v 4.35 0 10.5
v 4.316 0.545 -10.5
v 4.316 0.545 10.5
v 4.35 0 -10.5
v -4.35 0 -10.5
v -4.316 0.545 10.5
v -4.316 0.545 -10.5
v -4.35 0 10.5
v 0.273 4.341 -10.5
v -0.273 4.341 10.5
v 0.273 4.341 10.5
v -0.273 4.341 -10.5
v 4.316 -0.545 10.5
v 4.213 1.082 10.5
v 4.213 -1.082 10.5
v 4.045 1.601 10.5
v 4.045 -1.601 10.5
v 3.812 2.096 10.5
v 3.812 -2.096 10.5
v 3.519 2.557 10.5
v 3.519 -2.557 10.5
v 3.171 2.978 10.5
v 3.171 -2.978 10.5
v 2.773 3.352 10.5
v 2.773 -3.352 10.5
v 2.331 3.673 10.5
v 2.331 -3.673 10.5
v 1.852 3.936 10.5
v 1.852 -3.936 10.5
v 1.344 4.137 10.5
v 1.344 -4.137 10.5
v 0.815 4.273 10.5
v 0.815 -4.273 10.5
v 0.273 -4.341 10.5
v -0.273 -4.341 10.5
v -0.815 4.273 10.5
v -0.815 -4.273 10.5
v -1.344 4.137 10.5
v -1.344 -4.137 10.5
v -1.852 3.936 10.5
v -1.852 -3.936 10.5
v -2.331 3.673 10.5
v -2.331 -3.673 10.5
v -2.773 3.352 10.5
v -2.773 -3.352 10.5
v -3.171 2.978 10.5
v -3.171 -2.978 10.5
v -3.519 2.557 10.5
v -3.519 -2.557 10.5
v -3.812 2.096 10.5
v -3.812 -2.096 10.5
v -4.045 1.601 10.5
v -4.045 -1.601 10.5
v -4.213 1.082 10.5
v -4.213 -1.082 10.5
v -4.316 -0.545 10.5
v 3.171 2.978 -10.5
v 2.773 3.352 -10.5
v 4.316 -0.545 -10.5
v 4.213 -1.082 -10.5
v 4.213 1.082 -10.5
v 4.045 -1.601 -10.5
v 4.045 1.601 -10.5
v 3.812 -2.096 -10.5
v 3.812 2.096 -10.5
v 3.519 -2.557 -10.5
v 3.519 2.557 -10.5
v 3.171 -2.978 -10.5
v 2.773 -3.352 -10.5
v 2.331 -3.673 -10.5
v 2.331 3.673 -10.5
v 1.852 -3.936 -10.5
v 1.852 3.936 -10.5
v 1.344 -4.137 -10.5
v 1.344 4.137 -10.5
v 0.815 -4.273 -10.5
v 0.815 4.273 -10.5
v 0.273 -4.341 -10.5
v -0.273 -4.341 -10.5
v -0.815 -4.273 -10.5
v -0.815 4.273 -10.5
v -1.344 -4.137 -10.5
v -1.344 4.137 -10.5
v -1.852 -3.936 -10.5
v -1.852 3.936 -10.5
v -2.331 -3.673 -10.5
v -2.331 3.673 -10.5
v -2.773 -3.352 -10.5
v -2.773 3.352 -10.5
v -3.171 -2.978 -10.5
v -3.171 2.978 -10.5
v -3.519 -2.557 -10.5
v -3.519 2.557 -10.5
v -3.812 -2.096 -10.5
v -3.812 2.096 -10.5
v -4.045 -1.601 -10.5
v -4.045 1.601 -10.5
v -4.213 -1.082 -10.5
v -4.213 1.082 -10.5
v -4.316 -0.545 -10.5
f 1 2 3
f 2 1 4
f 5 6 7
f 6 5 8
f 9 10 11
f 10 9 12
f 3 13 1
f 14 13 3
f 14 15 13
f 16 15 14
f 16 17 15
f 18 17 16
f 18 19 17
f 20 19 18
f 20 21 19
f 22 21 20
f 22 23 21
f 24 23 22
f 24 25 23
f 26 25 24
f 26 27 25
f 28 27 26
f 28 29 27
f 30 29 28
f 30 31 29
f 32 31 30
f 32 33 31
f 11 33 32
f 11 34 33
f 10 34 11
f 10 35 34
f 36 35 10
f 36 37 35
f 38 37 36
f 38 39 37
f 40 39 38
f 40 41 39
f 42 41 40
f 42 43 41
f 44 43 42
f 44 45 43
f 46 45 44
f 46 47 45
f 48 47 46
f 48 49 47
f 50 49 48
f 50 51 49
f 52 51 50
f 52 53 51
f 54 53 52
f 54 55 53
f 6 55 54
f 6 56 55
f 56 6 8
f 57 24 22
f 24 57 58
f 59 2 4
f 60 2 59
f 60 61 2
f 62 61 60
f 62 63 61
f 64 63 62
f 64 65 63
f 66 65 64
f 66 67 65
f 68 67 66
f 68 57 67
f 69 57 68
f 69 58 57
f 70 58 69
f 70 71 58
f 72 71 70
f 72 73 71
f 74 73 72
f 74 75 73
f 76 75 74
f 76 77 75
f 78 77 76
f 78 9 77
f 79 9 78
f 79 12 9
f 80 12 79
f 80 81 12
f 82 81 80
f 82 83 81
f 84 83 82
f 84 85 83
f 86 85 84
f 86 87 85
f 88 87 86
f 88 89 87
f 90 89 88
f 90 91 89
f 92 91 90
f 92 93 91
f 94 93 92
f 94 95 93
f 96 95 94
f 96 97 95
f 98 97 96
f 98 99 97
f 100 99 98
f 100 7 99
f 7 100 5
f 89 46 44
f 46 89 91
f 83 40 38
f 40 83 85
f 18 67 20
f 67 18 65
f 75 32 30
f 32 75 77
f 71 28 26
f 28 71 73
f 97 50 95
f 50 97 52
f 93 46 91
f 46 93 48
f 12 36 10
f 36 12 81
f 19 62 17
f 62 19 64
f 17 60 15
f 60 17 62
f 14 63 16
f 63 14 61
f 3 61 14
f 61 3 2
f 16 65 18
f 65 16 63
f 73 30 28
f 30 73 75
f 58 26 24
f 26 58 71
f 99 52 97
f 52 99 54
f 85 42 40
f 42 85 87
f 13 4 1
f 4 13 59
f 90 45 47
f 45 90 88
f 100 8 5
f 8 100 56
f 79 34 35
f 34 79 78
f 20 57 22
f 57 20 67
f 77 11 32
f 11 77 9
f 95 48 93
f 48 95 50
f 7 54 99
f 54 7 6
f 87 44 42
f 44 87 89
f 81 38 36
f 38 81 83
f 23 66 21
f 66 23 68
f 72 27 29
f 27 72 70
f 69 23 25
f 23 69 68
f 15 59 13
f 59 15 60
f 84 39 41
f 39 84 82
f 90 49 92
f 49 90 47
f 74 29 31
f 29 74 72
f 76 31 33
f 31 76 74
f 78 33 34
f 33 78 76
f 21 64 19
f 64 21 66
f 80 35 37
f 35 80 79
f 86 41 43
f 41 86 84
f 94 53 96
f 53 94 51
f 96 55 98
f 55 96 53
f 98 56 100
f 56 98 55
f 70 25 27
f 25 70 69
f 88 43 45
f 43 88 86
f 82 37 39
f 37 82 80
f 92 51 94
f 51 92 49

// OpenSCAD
$fn = 50;


difference() {
	union() {
		translate(v = [0, 0, -10.5000000000]) {
			cylinder(h = 21, r = 4.3500000000);
		}
	}
	union() {
		translate(v = [0, 0, -100.0000000000]) {
			cylinder(h = 200, r = 0);
		}
	}
}
